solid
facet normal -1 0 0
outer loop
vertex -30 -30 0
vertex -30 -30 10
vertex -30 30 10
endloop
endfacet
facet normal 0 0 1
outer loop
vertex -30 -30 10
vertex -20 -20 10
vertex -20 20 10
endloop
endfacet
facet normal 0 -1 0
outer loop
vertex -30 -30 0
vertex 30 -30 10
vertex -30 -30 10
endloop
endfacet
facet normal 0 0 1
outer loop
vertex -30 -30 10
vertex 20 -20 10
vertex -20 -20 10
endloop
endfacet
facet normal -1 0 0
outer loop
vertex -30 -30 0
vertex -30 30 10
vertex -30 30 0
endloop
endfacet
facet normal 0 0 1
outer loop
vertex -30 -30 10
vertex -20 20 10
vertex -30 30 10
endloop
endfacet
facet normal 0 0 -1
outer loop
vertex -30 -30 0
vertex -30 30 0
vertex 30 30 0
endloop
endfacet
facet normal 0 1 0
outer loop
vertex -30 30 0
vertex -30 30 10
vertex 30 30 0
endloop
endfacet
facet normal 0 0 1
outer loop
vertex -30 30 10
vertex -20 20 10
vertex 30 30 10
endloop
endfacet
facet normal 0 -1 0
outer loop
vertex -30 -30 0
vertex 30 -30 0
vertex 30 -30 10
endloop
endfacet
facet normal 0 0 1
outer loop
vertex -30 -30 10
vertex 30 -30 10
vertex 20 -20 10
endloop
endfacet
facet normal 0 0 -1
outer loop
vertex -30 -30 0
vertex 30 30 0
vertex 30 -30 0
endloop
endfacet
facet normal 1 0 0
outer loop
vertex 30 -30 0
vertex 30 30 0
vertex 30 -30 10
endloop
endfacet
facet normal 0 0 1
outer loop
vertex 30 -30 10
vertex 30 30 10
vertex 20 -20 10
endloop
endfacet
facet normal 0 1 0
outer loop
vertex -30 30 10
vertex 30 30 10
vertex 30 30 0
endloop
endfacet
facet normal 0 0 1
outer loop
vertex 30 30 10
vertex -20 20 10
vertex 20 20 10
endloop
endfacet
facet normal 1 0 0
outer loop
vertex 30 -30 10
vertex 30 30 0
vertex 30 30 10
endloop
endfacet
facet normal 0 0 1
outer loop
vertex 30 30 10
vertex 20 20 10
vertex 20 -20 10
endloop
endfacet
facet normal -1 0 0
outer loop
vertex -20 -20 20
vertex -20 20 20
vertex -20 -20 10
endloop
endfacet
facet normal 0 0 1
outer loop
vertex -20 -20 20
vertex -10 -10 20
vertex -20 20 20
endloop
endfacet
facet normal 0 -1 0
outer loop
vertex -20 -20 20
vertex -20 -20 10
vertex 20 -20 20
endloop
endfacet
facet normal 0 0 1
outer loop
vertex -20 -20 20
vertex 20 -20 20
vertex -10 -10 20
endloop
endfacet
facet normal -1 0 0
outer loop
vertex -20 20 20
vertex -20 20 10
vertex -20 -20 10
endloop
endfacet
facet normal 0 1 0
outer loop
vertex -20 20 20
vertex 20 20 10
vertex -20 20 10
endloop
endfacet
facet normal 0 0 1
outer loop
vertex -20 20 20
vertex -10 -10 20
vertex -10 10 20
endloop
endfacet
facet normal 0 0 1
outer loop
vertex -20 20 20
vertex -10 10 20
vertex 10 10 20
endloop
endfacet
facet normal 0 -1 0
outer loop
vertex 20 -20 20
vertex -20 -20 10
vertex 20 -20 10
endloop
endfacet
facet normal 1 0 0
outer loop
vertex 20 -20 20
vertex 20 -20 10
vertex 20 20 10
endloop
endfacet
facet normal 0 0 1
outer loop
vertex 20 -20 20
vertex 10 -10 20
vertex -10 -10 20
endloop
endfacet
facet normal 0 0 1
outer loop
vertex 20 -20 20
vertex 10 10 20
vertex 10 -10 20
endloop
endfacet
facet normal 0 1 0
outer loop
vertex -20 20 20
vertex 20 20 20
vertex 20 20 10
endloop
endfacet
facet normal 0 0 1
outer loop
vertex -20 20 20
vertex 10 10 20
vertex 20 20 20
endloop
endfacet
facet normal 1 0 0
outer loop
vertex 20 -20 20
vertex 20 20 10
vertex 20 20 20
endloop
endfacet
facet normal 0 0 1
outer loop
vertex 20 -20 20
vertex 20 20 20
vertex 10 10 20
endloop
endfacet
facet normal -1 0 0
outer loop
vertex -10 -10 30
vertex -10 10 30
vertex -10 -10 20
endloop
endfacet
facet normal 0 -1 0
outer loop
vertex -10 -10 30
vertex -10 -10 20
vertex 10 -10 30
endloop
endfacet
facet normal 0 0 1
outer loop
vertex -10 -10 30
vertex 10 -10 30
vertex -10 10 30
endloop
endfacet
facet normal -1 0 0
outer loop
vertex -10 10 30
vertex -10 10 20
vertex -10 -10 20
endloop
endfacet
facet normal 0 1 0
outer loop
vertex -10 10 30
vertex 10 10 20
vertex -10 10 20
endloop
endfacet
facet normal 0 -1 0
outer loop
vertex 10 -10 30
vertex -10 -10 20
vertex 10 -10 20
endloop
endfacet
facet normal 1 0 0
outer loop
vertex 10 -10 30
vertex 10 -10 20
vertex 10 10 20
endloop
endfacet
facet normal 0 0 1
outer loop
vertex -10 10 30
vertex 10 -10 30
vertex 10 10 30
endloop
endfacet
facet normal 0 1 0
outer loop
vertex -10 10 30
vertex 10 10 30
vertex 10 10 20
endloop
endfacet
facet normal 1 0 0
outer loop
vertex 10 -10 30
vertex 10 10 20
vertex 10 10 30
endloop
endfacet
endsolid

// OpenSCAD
union() {
  translate([0, 0, 5])  cube([60, 60, 10], center=true);
  translate([0, 0, 15]) cube([40, 40, 10], center=true);
  translate([0, 0, 25]) cube([20, 20, 10], center=true);
}
